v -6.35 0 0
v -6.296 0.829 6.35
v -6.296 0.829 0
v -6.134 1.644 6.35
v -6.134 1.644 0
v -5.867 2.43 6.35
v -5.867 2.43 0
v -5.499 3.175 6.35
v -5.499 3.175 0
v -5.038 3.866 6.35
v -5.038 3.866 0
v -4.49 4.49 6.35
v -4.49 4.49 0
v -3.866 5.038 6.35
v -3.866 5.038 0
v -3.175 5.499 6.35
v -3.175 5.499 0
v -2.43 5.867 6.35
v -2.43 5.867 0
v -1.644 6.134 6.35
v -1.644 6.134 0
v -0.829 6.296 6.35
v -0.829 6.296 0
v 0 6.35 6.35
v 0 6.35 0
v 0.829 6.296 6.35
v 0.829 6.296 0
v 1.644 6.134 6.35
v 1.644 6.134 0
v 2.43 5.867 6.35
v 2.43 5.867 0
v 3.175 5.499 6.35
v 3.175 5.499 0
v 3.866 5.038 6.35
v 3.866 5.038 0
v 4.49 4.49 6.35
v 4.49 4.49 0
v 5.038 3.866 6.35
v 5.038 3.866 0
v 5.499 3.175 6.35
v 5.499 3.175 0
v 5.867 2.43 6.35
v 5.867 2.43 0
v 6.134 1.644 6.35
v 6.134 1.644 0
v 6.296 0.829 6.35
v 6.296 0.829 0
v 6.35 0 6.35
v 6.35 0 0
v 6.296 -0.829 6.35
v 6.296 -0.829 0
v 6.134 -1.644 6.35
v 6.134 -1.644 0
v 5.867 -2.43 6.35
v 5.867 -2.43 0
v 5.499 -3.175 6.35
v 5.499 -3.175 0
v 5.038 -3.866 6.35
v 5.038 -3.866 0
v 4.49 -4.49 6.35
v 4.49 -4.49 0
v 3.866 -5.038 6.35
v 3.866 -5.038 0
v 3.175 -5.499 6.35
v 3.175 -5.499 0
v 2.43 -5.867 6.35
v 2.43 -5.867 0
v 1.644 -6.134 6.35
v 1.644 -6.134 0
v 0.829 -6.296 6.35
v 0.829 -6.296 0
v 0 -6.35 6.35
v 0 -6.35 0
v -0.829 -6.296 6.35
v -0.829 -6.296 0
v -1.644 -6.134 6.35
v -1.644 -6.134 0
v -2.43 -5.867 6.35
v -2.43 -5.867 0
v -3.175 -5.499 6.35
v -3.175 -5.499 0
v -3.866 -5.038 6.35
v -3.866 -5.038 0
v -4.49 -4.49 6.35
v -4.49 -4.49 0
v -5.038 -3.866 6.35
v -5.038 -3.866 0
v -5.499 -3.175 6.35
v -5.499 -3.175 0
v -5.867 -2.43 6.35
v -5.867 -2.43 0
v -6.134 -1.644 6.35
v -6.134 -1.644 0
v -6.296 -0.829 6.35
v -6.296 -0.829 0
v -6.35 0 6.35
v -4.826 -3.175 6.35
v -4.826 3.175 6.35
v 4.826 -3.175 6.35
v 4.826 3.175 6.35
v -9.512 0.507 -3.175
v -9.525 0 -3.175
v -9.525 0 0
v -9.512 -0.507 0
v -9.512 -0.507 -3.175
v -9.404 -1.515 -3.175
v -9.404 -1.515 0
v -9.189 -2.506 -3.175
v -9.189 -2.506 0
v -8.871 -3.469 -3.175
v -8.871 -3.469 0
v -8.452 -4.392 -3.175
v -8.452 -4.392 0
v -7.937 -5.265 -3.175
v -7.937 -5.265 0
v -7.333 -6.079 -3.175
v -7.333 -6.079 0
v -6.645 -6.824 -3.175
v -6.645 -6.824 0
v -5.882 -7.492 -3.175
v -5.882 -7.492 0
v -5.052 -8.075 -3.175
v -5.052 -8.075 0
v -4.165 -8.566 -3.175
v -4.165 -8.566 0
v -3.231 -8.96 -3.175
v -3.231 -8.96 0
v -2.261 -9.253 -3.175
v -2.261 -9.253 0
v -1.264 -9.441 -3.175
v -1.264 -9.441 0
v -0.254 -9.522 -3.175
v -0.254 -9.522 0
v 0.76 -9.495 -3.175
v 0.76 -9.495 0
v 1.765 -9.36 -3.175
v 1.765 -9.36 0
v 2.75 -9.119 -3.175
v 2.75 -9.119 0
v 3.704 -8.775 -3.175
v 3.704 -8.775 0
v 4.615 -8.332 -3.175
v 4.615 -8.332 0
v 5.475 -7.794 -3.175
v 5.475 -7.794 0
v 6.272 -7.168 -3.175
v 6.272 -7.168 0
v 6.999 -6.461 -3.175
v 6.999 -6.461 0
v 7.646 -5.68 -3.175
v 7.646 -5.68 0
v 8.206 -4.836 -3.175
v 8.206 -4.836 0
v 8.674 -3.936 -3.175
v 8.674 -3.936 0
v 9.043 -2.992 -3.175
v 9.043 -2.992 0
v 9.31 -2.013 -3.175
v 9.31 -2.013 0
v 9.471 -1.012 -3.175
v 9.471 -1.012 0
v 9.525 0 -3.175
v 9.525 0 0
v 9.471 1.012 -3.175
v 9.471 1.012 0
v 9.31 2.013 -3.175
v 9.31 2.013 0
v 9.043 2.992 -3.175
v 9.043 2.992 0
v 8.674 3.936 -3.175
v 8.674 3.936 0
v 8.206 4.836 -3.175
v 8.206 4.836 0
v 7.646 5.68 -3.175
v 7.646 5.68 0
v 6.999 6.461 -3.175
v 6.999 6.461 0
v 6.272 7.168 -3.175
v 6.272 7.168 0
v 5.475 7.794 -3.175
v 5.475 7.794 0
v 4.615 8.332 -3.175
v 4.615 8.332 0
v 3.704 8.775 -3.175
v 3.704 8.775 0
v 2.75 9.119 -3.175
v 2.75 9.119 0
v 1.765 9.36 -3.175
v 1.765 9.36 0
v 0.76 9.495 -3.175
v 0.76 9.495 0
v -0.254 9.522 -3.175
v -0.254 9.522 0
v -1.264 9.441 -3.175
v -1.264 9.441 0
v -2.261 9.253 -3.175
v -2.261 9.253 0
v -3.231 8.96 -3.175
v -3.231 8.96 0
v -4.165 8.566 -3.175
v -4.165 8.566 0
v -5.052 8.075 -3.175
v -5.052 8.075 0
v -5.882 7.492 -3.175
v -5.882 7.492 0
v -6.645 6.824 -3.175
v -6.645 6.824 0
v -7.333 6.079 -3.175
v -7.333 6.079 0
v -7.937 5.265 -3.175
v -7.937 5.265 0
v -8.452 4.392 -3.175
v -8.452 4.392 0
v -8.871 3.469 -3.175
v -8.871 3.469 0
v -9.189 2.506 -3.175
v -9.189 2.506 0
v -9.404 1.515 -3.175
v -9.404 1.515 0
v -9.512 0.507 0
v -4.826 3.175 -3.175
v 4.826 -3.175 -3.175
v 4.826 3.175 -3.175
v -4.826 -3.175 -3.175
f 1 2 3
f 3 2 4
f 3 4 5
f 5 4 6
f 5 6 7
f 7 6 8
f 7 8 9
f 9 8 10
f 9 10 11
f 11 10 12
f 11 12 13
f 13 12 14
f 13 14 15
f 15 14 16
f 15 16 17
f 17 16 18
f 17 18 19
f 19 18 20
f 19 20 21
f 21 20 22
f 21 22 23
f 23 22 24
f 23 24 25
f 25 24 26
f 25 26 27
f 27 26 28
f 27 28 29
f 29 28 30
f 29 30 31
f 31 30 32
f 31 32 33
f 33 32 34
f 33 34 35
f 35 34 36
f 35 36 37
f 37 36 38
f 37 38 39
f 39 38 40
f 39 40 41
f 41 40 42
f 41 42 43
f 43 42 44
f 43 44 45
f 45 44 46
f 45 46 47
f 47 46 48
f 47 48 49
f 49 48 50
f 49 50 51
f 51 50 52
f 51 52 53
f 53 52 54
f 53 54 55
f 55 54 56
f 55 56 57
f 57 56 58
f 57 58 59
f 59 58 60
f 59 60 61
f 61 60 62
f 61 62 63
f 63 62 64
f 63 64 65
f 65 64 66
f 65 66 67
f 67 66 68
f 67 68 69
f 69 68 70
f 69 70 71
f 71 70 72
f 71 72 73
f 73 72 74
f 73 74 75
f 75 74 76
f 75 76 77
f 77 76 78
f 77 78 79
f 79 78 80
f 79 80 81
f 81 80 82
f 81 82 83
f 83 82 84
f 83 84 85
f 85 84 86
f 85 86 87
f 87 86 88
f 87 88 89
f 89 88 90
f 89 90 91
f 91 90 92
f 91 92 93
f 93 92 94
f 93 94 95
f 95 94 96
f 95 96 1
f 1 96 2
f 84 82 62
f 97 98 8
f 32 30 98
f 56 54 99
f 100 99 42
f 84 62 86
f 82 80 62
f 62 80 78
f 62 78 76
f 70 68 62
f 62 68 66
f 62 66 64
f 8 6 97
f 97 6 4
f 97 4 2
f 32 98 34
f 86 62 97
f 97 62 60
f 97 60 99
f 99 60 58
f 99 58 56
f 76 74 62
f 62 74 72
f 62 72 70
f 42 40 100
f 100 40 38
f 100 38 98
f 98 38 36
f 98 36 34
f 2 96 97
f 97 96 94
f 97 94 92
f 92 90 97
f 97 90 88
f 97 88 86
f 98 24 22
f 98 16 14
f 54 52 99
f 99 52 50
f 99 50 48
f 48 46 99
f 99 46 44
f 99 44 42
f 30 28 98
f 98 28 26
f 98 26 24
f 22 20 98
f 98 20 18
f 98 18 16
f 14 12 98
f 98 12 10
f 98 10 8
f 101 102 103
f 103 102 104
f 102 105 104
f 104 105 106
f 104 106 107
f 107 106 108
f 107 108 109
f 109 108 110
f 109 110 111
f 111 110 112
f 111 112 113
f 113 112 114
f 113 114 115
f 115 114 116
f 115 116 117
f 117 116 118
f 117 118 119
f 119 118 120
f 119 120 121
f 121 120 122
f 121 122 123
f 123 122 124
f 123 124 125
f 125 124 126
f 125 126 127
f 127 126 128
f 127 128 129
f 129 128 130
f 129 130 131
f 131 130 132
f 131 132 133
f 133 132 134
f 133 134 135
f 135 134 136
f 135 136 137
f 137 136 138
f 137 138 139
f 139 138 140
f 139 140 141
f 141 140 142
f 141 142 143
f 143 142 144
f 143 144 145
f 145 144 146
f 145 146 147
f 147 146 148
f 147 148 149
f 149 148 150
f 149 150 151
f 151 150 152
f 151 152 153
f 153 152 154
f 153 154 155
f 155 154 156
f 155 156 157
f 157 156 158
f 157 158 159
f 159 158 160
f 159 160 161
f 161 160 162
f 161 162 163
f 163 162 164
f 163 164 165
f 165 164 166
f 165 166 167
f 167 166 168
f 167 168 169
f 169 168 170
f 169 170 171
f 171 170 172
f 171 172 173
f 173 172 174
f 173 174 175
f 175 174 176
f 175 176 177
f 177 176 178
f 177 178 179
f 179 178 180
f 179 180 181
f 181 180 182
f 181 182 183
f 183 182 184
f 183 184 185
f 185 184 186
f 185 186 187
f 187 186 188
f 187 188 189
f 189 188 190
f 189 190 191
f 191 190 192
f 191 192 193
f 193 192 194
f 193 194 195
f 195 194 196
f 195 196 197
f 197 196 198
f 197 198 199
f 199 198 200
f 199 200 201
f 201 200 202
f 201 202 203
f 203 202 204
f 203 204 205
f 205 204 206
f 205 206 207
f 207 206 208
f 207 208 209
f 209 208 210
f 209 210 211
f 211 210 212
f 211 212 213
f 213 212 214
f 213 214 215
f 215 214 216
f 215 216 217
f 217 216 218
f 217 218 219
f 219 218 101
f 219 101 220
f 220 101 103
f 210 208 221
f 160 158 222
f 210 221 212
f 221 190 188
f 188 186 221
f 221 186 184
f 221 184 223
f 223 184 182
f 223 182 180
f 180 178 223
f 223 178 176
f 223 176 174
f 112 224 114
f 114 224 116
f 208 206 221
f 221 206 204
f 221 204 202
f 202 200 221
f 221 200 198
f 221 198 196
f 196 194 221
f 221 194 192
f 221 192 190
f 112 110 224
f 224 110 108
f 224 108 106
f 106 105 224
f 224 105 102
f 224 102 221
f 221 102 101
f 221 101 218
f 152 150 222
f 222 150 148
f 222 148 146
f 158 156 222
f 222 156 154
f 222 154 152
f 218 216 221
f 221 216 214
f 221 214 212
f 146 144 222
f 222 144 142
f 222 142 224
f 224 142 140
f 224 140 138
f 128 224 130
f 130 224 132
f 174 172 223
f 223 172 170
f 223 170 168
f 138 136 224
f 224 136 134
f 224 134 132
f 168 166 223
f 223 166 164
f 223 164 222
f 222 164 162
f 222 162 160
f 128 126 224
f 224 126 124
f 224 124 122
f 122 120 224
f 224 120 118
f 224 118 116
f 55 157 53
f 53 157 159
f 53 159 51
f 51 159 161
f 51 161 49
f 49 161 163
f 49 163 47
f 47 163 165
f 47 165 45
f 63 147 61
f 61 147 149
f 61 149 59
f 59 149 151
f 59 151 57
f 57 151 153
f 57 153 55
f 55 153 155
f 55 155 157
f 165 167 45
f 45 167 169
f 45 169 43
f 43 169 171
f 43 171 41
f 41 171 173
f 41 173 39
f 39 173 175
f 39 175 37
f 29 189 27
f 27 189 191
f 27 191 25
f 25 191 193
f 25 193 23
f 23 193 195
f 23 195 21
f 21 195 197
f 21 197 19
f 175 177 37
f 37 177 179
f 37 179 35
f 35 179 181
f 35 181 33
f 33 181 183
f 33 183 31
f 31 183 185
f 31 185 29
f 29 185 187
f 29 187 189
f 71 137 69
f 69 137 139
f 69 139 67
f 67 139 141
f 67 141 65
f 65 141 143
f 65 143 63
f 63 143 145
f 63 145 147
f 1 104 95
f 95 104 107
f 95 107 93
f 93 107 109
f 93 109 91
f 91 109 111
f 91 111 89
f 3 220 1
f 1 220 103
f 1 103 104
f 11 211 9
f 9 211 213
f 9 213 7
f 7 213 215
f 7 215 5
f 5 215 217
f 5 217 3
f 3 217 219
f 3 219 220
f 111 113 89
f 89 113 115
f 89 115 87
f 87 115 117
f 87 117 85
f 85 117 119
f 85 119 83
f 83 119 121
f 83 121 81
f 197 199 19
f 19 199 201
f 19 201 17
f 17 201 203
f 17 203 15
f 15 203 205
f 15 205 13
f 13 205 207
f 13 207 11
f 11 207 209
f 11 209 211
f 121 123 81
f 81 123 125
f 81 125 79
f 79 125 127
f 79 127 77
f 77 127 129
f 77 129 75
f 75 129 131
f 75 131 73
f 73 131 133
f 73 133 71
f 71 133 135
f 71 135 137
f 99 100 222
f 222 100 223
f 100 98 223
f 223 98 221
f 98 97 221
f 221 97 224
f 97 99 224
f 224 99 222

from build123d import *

# Parameters (mm, degrees)
SKETCH1_R           = 6.35
BOSS_EXTRUDE1_DEPTH = 6.35
SKETCH3_R           = 9.525
BOSS_EXTRUDE2_DEPTH = 3.175
SKETCH4_W           = 9.652
SKETCH4_H           = 6.35
CUT_EXTRUDE2_DEPTH  = 17.497783942


with BuildPart() as part:
    # Sketch1 → Boss-Extrude1 (new body)
    with BuildSketch(Plane.XY):
        Circle(SKETCH1_R)
    extrude(amount=BOSS_EXTRUDE1_DEPTH)

    # Sketch3 → Boss-Extrude2 (add)
    with BuildSketch(Plane(origin=(0, 0, 0), x_dir=(-1, 0, 0), z_dir=(0, 0, -1))):
        Circle(SKETCH3_R)
    extrude(amount=BOSS_EXTRUDE2_DEPTH)

    # Sketch4 → Cut-Extrude2 (cut, through all)
    with BuildSketch(Plane(origin=(0, 0, -3.175), x_dir=(-1, 0, 0), z_dir=(0, 0, -1))):
        Rectangle(SKETCH4_W, SKETCH4_H)
    extrude(amount=-CUT_EXTRUDE2_DEPTH, mode=Mode.SUBTRACT)


solid = part.part
